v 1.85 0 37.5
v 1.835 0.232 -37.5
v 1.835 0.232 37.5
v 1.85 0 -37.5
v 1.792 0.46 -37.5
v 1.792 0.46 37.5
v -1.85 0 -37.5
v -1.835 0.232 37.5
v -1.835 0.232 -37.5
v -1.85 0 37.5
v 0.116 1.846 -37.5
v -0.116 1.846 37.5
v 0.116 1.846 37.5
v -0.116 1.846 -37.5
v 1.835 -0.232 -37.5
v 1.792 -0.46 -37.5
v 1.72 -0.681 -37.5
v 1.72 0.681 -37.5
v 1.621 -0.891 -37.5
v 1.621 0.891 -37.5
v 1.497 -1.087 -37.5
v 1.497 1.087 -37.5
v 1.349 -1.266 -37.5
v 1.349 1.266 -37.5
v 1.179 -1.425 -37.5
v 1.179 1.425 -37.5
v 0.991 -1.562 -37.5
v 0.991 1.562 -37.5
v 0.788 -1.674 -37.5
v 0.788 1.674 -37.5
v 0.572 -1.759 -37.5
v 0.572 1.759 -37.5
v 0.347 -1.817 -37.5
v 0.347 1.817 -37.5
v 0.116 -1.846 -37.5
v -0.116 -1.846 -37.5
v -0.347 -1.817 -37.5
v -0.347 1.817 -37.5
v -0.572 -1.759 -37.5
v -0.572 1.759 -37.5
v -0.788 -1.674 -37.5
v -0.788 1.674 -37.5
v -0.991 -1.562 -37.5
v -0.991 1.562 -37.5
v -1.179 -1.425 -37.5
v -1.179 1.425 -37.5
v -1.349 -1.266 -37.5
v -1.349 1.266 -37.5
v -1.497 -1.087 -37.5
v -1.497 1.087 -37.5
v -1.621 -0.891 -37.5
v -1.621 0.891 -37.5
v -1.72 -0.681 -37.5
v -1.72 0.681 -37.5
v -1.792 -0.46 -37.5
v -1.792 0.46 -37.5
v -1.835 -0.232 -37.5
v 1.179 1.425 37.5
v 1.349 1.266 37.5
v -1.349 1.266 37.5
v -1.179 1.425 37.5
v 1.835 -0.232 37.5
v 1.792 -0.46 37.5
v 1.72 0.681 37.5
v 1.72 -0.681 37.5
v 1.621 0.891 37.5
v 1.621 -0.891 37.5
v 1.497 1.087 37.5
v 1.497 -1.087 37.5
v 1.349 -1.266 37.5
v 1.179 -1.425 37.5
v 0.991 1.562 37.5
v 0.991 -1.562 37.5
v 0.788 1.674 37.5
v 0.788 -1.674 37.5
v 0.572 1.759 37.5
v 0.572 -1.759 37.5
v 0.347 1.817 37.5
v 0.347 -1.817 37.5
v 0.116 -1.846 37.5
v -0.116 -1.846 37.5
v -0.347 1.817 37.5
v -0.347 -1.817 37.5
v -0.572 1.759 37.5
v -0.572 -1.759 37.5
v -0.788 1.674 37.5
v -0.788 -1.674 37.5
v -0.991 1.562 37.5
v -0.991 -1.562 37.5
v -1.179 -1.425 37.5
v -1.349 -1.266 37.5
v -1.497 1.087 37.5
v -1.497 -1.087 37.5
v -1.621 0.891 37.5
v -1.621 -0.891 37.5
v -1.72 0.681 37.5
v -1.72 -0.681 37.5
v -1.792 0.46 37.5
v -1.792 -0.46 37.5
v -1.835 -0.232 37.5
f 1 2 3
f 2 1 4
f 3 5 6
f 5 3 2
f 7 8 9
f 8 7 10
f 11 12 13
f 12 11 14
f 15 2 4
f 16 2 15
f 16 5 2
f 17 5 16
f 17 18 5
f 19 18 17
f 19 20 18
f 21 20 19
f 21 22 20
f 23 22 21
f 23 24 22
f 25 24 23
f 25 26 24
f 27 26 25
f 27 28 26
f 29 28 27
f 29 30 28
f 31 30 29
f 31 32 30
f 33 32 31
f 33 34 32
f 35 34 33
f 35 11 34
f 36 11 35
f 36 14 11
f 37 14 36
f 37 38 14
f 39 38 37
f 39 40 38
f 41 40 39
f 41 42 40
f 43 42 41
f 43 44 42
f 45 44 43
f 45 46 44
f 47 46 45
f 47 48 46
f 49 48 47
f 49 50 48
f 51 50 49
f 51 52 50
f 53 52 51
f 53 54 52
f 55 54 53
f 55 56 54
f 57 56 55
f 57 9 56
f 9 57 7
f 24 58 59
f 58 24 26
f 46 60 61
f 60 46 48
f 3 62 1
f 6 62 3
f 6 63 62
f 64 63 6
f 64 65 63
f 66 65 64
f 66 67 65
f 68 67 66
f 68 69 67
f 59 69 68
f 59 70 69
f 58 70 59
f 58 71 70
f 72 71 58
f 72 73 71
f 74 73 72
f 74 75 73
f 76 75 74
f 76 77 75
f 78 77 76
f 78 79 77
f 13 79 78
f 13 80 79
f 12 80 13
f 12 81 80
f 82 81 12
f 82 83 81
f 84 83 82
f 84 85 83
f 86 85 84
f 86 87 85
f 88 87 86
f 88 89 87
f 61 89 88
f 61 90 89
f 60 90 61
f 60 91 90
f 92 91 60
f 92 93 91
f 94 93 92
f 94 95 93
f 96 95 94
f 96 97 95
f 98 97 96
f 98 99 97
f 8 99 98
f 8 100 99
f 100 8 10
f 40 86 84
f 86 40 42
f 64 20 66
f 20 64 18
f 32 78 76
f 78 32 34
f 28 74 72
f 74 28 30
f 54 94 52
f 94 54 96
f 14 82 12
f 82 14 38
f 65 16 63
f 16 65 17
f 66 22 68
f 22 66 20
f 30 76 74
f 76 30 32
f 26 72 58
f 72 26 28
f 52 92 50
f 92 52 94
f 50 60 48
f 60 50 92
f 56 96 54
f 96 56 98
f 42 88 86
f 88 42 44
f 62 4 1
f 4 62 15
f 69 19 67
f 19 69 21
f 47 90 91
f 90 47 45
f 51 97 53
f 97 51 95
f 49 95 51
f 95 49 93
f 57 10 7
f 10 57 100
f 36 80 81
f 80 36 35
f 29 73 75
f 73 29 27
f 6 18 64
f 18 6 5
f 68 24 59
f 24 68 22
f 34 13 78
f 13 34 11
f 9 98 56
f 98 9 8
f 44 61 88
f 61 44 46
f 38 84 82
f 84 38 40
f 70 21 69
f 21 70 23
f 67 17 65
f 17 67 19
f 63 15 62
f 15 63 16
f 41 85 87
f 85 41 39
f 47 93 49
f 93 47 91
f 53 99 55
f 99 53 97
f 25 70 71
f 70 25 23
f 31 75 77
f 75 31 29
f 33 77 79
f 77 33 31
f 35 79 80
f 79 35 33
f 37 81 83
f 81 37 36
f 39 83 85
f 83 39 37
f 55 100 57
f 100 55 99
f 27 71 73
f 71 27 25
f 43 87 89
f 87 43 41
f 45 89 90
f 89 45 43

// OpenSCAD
$fn = 50;


difference() {
	union() {
		translate(v = [0, 0, -37.5000000000]) {
			cylinder(h = 75, r = 1.8500000000);
		}
	}
	union() {
		translate(v = [0, 0, -100.0000000000]) {
			cylinder(h = 200, r = 0);
		}
	}
}
